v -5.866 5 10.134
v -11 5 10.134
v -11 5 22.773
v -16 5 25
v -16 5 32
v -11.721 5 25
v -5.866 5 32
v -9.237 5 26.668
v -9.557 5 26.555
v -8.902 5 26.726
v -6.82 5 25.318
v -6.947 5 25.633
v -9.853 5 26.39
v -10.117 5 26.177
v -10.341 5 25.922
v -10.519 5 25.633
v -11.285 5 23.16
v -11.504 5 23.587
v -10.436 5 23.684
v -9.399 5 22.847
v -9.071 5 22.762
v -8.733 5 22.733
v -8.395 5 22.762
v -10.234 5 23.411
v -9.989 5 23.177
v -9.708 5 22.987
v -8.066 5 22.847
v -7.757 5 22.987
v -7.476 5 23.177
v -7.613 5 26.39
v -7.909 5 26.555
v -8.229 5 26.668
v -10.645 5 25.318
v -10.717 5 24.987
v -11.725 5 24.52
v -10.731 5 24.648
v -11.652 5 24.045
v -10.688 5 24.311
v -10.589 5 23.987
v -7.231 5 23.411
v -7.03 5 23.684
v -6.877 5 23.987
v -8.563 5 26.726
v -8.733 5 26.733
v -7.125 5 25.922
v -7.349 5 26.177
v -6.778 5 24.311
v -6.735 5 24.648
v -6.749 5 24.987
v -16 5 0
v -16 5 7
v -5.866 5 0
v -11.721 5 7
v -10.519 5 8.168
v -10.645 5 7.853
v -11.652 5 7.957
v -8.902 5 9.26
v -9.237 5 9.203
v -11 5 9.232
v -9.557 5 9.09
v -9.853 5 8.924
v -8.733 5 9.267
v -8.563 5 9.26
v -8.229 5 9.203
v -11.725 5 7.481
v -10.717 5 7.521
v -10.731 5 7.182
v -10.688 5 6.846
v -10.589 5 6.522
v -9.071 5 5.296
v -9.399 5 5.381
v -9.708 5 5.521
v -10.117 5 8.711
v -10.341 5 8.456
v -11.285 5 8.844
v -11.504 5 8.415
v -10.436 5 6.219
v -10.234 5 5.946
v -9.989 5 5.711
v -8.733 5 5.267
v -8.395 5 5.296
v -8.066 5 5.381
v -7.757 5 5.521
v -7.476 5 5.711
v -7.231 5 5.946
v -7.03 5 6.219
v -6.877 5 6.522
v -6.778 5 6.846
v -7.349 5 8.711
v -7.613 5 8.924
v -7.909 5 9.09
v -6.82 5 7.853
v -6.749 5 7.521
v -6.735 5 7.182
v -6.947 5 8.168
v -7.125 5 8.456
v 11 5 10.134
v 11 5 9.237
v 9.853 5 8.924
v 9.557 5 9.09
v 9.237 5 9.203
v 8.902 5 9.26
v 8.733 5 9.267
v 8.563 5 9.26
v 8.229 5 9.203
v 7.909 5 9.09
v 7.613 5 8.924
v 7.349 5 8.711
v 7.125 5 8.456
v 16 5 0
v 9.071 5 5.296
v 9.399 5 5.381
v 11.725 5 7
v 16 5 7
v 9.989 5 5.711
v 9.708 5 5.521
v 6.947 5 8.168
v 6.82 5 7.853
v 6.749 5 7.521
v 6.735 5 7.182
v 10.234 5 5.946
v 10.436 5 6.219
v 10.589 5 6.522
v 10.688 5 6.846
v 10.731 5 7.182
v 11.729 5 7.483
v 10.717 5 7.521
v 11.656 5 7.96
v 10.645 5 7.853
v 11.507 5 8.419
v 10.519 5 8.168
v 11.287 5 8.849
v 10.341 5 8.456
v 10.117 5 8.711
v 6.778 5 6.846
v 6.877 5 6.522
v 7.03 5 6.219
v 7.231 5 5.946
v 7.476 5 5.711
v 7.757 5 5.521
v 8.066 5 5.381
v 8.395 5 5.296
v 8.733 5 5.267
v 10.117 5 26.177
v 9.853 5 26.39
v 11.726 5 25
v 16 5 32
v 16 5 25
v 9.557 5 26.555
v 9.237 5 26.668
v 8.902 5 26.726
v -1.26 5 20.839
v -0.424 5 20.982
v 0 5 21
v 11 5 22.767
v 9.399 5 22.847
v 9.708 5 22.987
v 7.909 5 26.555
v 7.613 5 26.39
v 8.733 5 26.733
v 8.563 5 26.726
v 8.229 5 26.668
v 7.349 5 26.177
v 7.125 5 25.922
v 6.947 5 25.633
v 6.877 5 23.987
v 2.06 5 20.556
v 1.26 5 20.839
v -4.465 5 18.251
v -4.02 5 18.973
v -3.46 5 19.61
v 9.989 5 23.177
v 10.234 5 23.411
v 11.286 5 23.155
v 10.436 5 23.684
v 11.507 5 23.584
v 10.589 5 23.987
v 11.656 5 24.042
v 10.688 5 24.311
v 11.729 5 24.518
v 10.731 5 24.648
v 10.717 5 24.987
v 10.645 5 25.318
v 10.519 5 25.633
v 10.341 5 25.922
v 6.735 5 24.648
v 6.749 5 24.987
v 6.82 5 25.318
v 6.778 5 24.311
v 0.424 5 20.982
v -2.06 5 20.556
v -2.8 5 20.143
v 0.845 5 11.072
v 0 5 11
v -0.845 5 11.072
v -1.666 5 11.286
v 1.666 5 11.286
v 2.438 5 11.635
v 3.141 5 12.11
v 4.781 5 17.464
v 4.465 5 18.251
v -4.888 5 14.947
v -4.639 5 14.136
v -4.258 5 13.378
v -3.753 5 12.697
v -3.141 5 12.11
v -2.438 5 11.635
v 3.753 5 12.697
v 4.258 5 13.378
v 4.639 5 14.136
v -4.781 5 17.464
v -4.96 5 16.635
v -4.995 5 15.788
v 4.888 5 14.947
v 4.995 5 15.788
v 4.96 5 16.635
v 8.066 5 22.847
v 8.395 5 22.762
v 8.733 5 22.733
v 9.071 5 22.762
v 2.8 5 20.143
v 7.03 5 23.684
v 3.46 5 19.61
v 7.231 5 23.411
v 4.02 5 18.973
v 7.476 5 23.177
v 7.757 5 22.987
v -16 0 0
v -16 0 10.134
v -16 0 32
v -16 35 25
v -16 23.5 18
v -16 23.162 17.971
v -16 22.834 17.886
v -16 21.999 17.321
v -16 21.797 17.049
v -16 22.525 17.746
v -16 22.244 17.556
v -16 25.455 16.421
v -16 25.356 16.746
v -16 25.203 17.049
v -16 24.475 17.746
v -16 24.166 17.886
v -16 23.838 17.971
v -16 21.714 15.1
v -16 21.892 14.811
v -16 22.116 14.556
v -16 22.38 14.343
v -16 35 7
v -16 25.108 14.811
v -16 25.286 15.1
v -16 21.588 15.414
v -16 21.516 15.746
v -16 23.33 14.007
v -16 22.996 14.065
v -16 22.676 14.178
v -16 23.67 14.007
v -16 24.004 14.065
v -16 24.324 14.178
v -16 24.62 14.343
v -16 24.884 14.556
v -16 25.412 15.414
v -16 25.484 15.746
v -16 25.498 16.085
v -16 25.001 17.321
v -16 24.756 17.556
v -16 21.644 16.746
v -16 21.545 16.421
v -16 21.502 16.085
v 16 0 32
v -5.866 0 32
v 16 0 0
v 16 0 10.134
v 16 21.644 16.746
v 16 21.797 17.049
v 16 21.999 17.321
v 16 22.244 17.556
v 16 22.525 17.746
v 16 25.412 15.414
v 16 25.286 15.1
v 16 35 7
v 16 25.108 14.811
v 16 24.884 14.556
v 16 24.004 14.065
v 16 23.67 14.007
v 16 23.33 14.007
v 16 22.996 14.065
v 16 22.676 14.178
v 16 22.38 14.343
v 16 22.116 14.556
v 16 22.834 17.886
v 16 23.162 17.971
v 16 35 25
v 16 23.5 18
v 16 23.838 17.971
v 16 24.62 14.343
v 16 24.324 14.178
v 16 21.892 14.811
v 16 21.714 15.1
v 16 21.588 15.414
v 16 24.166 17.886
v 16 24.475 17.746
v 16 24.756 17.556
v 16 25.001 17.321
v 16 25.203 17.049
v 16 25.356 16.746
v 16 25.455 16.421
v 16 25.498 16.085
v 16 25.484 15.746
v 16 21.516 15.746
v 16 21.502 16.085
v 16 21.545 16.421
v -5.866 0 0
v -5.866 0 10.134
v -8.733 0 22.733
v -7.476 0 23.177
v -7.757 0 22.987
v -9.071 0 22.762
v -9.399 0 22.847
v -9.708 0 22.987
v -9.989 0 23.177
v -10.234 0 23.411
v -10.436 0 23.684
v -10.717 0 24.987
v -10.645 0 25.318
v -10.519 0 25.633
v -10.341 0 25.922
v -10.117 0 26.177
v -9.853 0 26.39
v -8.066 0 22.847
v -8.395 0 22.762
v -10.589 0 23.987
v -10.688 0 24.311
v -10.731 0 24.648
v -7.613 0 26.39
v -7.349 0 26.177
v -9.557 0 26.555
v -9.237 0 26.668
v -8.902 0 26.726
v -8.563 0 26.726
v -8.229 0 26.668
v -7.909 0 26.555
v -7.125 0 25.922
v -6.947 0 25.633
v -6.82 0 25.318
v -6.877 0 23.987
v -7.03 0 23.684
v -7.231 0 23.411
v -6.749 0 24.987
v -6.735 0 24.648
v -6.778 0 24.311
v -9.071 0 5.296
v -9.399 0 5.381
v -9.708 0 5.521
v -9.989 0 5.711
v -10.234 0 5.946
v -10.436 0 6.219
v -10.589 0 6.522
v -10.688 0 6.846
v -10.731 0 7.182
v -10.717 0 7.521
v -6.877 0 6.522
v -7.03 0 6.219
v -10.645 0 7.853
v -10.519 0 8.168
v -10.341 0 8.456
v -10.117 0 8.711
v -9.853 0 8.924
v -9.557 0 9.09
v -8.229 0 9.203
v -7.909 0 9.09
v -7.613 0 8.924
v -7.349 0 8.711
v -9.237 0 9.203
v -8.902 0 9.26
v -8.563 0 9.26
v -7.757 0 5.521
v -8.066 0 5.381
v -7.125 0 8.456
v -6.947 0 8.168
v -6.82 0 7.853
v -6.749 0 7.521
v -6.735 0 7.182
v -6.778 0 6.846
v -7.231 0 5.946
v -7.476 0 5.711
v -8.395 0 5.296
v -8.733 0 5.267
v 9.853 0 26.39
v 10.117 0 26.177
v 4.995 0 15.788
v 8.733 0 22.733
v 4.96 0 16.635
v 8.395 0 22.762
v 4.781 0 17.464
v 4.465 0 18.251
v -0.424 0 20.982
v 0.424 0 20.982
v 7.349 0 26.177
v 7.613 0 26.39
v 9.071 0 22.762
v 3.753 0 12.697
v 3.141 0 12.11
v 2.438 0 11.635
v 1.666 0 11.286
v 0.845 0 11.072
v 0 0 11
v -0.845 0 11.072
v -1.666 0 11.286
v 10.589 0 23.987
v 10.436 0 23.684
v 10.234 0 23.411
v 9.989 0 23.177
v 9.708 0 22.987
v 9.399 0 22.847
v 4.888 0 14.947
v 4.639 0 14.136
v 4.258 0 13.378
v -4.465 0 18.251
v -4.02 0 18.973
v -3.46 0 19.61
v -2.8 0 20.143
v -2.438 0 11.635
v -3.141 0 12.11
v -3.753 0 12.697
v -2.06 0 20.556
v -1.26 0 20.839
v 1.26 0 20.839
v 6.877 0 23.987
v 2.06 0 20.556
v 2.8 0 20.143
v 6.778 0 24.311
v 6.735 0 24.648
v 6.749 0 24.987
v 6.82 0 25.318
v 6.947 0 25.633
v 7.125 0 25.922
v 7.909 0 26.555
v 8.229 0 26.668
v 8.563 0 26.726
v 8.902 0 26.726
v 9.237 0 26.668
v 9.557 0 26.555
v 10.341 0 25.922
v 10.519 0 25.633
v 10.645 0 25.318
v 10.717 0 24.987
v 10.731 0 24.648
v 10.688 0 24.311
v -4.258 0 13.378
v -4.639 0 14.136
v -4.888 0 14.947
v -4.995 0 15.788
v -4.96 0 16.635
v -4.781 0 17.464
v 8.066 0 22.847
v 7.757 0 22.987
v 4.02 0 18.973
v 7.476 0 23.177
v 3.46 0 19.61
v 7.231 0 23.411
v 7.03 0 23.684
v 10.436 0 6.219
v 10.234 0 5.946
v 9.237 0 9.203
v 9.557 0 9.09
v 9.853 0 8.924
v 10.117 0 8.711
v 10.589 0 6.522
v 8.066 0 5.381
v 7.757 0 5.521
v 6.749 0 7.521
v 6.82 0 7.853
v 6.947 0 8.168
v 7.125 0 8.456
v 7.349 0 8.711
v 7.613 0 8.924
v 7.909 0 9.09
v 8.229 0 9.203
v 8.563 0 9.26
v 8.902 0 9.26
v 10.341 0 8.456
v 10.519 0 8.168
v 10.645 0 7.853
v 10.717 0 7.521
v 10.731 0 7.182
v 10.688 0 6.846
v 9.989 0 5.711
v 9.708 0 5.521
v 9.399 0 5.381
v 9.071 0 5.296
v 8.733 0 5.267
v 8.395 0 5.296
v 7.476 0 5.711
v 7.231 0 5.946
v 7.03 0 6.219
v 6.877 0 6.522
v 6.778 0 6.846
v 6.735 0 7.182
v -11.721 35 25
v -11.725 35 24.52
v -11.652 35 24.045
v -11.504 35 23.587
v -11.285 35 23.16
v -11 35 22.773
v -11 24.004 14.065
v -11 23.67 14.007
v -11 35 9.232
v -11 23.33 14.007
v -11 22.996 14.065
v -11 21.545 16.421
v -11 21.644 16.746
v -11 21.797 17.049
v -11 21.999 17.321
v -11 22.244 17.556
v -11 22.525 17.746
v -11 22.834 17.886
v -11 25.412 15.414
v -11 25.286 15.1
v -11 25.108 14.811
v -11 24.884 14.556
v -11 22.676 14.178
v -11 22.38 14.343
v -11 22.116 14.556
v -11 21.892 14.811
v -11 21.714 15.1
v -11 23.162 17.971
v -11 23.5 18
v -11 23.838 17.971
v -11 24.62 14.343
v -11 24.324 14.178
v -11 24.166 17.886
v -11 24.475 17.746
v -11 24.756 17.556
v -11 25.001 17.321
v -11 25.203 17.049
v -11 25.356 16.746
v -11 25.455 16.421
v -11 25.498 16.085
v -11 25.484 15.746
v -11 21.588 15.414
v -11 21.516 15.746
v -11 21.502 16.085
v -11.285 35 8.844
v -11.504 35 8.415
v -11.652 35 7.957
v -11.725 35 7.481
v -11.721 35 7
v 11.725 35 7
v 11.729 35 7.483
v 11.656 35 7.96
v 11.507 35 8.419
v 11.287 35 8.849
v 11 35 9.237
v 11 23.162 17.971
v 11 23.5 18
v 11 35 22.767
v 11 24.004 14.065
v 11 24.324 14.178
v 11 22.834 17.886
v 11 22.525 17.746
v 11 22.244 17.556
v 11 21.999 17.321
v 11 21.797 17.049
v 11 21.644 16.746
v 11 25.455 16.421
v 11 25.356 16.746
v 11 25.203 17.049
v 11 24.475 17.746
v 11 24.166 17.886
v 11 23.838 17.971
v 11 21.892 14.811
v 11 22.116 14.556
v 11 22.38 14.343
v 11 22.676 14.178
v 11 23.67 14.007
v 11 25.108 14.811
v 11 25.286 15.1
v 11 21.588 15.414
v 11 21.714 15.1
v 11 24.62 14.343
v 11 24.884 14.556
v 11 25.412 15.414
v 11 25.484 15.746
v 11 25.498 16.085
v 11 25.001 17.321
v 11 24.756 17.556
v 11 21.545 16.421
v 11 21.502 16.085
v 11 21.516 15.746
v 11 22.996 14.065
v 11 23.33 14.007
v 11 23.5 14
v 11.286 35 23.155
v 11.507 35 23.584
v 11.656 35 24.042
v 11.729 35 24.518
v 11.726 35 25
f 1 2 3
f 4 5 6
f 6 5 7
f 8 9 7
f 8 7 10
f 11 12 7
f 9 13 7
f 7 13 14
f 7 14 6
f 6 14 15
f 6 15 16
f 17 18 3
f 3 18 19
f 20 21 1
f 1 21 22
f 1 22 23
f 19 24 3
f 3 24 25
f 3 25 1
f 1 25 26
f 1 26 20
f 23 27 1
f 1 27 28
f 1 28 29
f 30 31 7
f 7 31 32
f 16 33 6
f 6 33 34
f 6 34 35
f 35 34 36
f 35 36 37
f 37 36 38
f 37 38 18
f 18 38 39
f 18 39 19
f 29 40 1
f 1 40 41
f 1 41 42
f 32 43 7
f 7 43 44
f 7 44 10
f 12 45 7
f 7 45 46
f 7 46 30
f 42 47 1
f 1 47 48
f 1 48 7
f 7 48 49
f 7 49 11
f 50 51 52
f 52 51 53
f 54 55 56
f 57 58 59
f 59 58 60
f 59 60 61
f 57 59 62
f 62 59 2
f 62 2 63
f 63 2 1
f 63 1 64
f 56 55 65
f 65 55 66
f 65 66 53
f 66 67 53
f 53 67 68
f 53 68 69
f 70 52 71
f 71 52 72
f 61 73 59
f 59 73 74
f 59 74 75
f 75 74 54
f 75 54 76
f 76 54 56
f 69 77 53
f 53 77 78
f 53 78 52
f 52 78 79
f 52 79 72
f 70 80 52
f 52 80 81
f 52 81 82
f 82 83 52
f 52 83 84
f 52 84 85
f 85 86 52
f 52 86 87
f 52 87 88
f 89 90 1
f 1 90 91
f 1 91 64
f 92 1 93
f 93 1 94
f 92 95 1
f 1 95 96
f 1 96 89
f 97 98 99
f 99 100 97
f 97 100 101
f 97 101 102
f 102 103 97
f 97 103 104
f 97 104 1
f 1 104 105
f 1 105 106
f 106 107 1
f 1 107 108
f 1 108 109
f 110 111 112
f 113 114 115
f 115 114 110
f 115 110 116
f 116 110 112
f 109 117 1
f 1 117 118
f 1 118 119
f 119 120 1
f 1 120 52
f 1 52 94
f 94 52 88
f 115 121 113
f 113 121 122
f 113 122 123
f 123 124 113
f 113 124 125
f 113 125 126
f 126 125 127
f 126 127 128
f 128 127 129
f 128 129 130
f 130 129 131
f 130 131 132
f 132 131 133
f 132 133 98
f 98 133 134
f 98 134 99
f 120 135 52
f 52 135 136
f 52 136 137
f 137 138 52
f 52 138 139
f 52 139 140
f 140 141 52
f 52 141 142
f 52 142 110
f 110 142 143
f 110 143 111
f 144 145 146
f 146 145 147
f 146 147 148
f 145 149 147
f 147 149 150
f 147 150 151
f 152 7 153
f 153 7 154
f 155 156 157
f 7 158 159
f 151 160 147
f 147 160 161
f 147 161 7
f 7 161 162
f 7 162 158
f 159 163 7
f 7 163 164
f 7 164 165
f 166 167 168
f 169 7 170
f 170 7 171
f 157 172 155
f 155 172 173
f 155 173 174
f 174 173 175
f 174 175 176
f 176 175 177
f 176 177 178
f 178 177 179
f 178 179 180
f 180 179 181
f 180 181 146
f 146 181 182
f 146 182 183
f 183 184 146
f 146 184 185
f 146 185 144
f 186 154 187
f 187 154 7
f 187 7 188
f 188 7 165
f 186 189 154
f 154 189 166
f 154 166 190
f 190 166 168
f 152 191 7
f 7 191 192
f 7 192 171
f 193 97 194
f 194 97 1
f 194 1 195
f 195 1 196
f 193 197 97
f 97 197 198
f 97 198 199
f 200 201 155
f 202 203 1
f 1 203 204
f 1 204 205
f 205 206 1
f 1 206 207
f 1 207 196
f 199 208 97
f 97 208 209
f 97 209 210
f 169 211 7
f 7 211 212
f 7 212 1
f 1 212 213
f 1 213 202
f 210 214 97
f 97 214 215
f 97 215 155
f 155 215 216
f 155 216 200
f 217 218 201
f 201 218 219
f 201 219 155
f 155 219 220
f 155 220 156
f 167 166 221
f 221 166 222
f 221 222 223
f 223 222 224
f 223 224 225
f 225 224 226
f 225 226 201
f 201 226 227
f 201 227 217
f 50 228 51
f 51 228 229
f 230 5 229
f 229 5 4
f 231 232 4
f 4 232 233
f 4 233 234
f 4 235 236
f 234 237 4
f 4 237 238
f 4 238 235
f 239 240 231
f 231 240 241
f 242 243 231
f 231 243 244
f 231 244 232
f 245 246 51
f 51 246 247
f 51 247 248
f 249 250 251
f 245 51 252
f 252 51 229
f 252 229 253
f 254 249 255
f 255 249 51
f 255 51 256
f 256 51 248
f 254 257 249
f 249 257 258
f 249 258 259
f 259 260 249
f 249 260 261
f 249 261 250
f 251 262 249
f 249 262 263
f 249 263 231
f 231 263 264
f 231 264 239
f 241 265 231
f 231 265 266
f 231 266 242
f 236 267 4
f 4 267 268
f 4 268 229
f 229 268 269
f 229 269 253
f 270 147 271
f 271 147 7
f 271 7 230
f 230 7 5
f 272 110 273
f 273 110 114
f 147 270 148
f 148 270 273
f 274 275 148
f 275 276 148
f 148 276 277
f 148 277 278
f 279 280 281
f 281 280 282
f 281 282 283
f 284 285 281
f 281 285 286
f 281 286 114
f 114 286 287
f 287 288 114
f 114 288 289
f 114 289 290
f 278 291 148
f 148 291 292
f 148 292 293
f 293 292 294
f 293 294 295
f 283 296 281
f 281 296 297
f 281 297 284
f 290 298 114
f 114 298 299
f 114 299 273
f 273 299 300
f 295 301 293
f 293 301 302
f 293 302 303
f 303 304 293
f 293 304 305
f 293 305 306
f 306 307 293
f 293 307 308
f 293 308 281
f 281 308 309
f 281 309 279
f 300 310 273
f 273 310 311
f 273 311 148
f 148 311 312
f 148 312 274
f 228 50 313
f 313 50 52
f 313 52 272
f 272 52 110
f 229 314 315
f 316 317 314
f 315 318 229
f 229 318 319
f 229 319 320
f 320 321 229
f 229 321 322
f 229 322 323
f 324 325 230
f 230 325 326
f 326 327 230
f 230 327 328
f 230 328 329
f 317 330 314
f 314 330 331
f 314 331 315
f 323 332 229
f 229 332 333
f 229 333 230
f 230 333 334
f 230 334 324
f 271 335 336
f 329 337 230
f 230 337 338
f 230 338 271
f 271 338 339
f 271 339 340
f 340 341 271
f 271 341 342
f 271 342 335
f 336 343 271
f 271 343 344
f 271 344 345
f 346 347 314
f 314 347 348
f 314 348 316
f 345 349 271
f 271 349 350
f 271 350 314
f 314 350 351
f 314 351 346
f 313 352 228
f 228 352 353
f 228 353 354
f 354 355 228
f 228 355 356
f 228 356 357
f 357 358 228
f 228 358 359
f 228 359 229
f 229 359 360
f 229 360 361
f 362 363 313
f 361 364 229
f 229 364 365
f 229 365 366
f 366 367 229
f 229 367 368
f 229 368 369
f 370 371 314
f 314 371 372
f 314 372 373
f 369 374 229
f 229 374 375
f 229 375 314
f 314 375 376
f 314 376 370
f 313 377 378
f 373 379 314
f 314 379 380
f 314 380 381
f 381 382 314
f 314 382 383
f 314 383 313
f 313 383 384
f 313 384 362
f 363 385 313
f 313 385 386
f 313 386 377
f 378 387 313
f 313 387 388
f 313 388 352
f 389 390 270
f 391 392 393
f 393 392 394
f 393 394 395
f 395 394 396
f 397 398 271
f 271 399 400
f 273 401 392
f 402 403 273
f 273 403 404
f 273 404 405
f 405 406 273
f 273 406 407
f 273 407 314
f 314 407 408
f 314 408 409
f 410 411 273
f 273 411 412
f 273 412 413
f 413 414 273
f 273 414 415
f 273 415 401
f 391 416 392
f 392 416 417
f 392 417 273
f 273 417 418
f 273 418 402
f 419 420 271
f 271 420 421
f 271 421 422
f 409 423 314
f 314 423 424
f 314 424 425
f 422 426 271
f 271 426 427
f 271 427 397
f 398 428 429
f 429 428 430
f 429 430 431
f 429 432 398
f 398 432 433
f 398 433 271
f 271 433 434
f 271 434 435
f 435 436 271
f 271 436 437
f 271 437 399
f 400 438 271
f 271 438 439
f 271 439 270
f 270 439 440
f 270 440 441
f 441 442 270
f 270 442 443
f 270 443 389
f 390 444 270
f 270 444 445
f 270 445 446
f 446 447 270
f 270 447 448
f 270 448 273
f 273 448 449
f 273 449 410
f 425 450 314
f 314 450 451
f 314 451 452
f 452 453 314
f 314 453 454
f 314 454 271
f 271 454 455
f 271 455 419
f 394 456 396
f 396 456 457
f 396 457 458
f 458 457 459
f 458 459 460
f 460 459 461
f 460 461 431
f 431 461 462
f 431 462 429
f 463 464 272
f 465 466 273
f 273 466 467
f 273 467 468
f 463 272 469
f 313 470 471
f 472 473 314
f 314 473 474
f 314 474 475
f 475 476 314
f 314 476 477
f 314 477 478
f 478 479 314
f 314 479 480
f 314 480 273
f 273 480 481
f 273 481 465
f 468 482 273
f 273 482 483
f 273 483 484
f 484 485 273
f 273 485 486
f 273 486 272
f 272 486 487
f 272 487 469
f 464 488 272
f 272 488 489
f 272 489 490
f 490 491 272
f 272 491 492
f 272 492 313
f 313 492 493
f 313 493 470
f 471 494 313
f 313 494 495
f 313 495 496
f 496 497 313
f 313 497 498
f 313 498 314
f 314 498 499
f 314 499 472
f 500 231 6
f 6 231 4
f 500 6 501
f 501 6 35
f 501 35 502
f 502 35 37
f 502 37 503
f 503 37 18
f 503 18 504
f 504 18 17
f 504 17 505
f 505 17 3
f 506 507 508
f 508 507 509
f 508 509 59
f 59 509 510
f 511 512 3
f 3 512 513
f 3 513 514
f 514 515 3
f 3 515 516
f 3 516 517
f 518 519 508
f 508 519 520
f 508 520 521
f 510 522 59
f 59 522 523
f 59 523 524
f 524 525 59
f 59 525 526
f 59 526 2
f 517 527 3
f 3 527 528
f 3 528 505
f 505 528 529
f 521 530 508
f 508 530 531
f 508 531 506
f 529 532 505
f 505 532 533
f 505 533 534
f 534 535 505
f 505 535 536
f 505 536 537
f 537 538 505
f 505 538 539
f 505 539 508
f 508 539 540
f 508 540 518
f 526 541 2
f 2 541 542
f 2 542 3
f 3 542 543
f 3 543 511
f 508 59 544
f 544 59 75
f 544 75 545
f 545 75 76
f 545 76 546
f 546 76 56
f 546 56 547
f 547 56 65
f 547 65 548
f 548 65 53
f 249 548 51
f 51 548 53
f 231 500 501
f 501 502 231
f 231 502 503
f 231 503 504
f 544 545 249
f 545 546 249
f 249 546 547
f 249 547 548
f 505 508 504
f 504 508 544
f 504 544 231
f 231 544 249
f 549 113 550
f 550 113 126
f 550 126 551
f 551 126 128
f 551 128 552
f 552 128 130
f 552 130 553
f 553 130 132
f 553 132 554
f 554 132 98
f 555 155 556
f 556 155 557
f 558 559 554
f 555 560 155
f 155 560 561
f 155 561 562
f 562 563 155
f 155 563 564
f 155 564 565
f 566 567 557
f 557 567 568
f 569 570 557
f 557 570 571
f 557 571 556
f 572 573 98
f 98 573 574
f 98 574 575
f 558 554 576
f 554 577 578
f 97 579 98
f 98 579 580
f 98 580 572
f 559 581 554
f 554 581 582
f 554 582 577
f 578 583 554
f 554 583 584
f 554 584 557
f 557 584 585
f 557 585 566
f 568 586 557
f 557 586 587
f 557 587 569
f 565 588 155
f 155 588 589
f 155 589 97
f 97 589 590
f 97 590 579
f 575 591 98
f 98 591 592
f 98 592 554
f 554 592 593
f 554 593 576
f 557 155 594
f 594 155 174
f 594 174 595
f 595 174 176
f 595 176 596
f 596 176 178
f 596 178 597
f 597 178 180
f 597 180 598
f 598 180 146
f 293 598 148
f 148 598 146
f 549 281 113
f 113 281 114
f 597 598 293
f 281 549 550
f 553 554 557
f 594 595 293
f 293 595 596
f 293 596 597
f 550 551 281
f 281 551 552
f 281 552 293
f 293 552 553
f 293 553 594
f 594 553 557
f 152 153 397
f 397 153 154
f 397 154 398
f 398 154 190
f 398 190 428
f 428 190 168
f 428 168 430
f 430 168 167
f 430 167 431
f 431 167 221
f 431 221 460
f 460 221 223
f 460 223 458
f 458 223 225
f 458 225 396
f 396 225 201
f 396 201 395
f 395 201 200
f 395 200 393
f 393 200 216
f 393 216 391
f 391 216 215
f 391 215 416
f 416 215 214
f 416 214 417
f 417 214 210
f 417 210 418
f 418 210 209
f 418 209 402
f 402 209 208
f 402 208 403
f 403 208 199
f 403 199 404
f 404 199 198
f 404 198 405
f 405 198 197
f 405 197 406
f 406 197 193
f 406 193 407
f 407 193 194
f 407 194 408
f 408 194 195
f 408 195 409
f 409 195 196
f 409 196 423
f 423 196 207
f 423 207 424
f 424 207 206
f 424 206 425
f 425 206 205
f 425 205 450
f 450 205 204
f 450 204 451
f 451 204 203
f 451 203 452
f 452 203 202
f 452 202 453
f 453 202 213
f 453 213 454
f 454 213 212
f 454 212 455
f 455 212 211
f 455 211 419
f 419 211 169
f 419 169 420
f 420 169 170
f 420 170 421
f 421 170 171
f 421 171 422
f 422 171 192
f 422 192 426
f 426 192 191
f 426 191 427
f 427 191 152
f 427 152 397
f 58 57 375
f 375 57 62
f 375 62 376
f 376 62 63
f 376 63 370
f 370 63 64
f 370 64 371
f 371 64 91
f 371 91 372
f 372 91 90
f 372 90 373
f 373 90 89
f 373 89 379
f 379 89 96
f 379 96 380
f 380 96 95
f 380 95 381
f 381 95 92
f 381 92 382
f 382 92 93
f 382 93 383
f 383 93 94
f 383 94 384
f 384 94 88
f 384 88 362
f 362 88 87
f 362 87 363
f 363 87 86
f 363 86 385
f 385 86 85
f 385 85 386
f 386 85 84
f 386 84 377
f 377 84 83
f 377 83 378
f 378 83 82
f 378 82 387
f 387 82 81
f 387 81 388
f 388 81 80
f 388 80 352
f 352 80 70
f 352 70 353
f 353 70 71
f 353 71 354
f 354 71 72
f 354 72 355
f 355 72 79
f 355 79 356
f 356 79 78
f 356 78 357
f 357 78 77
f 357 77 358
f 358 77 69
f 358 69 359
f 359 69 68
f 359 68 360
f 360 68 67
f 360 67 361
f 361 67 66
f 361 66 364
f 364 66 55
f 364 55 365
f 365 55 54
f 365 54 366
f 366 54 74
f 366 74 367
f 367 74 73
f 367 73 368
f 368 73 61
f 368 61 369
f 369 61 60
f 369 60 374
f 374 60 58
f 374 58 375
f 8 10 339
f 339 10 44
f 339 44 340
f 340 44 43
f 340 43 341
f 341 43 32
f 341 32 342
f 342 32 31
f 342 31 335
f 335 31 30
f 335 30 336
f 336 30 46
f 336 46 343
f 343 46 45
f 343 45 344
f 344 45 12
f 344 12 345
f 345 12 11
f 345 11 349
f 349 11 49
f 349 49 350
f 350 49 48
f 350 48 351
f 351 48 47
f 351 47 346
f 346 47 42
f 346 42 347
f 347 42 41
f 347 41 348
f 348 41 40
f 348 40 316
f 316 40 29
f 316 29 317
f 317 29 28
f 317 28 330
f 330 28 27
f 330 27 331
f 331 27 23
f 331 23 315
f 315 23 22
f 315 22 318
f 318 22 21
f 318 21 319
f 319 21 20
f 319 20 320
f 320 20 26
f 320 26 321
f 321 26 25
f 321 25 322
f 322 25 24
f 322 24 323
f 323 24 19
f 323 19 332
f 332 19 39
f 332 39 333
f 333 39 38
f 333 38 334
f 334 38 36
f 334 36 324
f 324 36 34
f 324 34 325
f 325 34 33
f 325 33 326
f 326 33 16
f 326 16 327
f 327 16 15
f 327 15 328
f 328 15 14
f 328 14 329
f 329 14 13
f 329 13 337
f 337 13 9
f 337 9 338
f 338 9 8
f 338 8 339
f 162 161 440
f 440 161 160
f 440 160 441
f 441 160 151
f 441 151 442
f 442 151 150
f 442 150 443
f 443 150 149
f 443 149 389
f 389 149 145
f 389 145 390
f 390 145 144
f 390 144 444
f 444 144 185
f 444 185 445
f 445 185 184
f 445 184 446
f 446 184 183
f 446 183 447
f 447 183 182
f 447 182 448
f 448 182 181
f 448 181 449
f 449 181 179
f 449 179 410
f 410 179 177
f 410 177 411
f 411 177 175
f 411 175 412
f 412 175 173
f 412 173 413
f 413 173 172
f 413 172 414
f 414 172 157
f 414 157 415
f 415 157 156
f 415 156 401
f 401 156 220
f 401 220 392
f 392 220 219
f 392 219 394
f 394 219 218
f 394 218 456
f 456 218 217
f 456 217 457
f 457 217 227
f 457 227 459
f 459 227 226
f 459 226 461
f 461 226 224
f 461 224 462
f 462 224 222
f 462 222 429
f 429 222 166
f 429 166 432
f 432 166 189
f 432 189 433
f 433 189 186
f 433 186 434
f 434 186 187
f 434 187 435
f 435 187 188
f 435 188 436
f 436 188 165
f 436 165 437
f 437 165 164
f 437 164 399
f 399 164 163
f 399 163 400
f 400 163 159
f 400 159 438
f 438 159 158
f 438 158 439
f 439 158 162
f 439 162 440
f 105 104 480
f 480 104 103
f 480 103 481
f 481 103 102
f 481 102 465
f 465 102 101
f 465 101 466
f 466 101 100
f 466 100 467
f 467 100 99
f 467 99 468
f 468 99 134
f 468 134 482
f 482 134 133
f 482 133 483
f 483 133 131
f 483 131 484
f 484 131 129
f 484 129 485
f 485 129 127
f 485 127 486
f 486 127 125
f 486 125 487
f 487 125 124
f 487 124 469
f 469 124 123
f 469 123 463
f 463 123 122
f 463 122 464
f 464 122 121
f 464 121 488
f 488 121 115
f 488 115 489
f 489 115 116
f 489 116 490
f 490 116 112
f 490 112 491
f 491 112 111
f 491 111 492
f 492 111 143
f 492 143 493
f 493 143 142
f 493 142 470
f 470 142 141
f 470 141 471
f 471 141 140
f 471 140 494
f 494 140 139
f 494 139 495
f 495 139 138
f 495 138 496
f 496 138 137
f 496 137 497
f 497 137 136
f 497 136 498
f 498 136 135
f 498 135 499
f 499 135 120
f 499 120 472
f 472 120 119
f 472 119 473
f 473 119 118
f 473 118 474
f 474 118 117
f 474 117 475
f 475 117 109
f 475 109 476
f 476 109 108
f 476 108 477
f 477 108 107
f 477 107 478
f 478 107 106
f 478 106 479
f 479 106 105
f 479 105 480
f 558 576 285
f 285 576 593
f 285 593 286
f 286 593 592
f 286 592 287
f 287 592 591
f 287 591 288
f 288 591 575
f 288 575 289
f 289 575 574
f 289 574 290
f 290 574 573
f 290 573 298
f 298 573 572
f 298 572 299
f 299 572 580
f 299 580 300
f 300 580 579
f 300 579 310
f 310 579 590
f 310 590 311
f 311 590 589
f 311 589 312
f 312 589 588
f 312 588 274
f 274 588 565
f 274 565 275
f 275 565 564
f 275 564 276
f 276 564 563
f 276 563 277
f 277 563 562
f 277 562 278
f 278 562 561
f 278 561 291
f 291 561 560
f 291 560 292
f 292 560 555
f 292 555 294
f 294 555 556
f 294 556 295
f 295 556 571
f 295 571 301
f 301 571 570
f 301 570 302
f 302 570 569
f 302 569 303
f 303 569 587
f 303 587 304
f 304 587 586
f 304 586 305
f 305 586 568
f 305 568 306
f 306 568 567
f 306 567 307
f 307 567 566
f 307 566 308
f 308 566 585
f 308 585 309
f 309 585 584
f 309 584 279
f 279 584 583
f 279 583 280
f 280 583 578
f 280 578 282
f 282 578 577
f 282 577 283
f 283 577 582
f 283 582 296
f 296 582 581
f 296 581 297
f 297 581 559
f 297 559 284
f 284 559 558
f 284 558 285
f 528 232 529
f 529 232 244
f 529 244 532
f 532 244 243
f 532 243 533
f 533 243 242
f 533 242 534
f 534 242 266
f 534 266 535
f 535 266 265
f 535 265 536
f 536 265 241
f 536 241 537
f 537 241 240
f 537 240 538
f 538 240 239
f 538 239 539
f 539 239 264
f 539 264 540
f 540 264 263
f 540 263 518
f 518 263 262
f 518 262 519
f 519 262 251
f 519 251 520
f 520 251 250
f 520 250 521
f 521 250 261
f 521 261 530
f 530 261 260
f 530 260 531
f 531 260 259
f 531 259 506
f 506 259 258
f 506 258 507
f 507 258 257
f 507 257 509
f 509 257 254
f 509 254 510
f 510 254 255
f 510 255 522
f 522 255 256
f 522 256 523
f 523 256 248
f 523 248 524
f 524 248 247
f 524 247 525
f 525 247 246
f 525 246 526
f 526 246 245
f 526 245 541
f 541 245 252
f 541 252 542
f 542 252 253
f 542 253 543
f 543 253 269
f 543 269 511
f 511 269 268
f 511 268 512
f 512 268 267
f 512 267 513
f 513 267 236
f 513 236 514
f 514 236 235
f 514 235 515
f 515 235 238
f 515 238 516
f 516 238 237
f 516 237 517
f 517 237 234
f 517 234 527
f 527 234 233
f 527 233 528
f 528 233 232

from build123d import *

# Parameters (mm, degrees)
SKETCH1_W           = 32
SKETCH1_H           = 32
BOSS_EXTRUDE1_DEPTH = 5
BOSS_EXTRUDE2_DEPTH = 30
SKETCH3_R           = 5
SKETCH3_R_2         = 2
CUT_EXTRUDE1_DEPTH  = 10
SKETCH4_R           = 2
CUT_EXTRUDE2_DEPTH  = 58.210138962


with BuildPart() as part:
    # Sketch1 → Boss-Extrude1 (new body)
    with BuildSketch(Plane(origin=(0, 0, 0), x_dir=(1, 0, 0), z_dir=(0, 1, 0))):
        with Locations((0, -16)):
            Rectangle(SKETCH1_W, SKETCH1_H)
    extrude(amount=BOSS_EXTRUDE1_DEPTH)

    # Sketch2 → Boss-Extrude2 (add)
    with BuildSketch(Plane(origin=(0, 5, 0), x_dir=(1, 0, 0), z_dir=(0, 1, 0))):
        with BuildLine():
            Line((-16, -7), (-11.720842953, -7))
            ThreePointArc((-11.720842953, -7), (-11.587559316, -8.18927833), (-11, -9.231833616))
            Line((-11, -9.231833616), (-11, -22.772628888))
            ThreePointArc((-11, -22.772628888), (-11.586870055, -23.813052847), (-11.721238688, -25))
            Line((-11.721238688, -25), (-16, -25))
            Line((-16, -25), (-16, -7))
        make_face()
        with BuildLine():
            Line((16, -25), (11.725701193, -25))
            ThreePointArc((11.725701193, -25), (11.590282481, -23.809816196), (11, -22.767490763))
            Line((11, -22.767490763), (11, -9.236971742))
            ThreePointArc((11, -9.236971742), (11.590974158, -8.192515764), (11.725305458, -7))
            Line((11.725305458, -7), (16, -7))
            Line((16, -7), (16, -25))
        make_face()
    extrude(amount=BOSS_EXTRUDE2_DEPTH)

    # Sketch3 → Cut-Extrude1 (cut)
    with BuildSketch(Plane.XZ):
        with Locations(Location((0, 16, 0), (0, 0, 270))):
            Circle(SKETCH3_R)
        with Locations(Location((-8.732768748, 7.267231252, 0), (0, 0, 270))):
            Circle(SKETCH3_R_2)
        with Locations(Location((-8.732768748, 24.732768748, 0), (0, 0, 270))):
            Circle(SKETCH3_R_2)
        with Locations(Location((8.732768748, 24.732768748, 0), (0, 0, 270))):
            Circle(SKETCH3_R_2)
        with Locations(Location((8.732768748, 7.267231252, 0), (0, 0, 270))):
            Circle(SKETCH3_R_2)
    extrude(amount=-CUT_EXTRUDE1_DEPTH, mode=Mode.SUBTRACT)

    # Sketch4 → Cut-Extrude2 (cut, through all)
    with BuildSketch(Plane.ZY.offset(16)):
        with Locations((16, 23.5)):
            Circle(SKETCH4_R)
    extrude(amount=-CUT_EXTRUDE2_DEPTH, mode=Mode.SUBTRACT)


solid = part.part
